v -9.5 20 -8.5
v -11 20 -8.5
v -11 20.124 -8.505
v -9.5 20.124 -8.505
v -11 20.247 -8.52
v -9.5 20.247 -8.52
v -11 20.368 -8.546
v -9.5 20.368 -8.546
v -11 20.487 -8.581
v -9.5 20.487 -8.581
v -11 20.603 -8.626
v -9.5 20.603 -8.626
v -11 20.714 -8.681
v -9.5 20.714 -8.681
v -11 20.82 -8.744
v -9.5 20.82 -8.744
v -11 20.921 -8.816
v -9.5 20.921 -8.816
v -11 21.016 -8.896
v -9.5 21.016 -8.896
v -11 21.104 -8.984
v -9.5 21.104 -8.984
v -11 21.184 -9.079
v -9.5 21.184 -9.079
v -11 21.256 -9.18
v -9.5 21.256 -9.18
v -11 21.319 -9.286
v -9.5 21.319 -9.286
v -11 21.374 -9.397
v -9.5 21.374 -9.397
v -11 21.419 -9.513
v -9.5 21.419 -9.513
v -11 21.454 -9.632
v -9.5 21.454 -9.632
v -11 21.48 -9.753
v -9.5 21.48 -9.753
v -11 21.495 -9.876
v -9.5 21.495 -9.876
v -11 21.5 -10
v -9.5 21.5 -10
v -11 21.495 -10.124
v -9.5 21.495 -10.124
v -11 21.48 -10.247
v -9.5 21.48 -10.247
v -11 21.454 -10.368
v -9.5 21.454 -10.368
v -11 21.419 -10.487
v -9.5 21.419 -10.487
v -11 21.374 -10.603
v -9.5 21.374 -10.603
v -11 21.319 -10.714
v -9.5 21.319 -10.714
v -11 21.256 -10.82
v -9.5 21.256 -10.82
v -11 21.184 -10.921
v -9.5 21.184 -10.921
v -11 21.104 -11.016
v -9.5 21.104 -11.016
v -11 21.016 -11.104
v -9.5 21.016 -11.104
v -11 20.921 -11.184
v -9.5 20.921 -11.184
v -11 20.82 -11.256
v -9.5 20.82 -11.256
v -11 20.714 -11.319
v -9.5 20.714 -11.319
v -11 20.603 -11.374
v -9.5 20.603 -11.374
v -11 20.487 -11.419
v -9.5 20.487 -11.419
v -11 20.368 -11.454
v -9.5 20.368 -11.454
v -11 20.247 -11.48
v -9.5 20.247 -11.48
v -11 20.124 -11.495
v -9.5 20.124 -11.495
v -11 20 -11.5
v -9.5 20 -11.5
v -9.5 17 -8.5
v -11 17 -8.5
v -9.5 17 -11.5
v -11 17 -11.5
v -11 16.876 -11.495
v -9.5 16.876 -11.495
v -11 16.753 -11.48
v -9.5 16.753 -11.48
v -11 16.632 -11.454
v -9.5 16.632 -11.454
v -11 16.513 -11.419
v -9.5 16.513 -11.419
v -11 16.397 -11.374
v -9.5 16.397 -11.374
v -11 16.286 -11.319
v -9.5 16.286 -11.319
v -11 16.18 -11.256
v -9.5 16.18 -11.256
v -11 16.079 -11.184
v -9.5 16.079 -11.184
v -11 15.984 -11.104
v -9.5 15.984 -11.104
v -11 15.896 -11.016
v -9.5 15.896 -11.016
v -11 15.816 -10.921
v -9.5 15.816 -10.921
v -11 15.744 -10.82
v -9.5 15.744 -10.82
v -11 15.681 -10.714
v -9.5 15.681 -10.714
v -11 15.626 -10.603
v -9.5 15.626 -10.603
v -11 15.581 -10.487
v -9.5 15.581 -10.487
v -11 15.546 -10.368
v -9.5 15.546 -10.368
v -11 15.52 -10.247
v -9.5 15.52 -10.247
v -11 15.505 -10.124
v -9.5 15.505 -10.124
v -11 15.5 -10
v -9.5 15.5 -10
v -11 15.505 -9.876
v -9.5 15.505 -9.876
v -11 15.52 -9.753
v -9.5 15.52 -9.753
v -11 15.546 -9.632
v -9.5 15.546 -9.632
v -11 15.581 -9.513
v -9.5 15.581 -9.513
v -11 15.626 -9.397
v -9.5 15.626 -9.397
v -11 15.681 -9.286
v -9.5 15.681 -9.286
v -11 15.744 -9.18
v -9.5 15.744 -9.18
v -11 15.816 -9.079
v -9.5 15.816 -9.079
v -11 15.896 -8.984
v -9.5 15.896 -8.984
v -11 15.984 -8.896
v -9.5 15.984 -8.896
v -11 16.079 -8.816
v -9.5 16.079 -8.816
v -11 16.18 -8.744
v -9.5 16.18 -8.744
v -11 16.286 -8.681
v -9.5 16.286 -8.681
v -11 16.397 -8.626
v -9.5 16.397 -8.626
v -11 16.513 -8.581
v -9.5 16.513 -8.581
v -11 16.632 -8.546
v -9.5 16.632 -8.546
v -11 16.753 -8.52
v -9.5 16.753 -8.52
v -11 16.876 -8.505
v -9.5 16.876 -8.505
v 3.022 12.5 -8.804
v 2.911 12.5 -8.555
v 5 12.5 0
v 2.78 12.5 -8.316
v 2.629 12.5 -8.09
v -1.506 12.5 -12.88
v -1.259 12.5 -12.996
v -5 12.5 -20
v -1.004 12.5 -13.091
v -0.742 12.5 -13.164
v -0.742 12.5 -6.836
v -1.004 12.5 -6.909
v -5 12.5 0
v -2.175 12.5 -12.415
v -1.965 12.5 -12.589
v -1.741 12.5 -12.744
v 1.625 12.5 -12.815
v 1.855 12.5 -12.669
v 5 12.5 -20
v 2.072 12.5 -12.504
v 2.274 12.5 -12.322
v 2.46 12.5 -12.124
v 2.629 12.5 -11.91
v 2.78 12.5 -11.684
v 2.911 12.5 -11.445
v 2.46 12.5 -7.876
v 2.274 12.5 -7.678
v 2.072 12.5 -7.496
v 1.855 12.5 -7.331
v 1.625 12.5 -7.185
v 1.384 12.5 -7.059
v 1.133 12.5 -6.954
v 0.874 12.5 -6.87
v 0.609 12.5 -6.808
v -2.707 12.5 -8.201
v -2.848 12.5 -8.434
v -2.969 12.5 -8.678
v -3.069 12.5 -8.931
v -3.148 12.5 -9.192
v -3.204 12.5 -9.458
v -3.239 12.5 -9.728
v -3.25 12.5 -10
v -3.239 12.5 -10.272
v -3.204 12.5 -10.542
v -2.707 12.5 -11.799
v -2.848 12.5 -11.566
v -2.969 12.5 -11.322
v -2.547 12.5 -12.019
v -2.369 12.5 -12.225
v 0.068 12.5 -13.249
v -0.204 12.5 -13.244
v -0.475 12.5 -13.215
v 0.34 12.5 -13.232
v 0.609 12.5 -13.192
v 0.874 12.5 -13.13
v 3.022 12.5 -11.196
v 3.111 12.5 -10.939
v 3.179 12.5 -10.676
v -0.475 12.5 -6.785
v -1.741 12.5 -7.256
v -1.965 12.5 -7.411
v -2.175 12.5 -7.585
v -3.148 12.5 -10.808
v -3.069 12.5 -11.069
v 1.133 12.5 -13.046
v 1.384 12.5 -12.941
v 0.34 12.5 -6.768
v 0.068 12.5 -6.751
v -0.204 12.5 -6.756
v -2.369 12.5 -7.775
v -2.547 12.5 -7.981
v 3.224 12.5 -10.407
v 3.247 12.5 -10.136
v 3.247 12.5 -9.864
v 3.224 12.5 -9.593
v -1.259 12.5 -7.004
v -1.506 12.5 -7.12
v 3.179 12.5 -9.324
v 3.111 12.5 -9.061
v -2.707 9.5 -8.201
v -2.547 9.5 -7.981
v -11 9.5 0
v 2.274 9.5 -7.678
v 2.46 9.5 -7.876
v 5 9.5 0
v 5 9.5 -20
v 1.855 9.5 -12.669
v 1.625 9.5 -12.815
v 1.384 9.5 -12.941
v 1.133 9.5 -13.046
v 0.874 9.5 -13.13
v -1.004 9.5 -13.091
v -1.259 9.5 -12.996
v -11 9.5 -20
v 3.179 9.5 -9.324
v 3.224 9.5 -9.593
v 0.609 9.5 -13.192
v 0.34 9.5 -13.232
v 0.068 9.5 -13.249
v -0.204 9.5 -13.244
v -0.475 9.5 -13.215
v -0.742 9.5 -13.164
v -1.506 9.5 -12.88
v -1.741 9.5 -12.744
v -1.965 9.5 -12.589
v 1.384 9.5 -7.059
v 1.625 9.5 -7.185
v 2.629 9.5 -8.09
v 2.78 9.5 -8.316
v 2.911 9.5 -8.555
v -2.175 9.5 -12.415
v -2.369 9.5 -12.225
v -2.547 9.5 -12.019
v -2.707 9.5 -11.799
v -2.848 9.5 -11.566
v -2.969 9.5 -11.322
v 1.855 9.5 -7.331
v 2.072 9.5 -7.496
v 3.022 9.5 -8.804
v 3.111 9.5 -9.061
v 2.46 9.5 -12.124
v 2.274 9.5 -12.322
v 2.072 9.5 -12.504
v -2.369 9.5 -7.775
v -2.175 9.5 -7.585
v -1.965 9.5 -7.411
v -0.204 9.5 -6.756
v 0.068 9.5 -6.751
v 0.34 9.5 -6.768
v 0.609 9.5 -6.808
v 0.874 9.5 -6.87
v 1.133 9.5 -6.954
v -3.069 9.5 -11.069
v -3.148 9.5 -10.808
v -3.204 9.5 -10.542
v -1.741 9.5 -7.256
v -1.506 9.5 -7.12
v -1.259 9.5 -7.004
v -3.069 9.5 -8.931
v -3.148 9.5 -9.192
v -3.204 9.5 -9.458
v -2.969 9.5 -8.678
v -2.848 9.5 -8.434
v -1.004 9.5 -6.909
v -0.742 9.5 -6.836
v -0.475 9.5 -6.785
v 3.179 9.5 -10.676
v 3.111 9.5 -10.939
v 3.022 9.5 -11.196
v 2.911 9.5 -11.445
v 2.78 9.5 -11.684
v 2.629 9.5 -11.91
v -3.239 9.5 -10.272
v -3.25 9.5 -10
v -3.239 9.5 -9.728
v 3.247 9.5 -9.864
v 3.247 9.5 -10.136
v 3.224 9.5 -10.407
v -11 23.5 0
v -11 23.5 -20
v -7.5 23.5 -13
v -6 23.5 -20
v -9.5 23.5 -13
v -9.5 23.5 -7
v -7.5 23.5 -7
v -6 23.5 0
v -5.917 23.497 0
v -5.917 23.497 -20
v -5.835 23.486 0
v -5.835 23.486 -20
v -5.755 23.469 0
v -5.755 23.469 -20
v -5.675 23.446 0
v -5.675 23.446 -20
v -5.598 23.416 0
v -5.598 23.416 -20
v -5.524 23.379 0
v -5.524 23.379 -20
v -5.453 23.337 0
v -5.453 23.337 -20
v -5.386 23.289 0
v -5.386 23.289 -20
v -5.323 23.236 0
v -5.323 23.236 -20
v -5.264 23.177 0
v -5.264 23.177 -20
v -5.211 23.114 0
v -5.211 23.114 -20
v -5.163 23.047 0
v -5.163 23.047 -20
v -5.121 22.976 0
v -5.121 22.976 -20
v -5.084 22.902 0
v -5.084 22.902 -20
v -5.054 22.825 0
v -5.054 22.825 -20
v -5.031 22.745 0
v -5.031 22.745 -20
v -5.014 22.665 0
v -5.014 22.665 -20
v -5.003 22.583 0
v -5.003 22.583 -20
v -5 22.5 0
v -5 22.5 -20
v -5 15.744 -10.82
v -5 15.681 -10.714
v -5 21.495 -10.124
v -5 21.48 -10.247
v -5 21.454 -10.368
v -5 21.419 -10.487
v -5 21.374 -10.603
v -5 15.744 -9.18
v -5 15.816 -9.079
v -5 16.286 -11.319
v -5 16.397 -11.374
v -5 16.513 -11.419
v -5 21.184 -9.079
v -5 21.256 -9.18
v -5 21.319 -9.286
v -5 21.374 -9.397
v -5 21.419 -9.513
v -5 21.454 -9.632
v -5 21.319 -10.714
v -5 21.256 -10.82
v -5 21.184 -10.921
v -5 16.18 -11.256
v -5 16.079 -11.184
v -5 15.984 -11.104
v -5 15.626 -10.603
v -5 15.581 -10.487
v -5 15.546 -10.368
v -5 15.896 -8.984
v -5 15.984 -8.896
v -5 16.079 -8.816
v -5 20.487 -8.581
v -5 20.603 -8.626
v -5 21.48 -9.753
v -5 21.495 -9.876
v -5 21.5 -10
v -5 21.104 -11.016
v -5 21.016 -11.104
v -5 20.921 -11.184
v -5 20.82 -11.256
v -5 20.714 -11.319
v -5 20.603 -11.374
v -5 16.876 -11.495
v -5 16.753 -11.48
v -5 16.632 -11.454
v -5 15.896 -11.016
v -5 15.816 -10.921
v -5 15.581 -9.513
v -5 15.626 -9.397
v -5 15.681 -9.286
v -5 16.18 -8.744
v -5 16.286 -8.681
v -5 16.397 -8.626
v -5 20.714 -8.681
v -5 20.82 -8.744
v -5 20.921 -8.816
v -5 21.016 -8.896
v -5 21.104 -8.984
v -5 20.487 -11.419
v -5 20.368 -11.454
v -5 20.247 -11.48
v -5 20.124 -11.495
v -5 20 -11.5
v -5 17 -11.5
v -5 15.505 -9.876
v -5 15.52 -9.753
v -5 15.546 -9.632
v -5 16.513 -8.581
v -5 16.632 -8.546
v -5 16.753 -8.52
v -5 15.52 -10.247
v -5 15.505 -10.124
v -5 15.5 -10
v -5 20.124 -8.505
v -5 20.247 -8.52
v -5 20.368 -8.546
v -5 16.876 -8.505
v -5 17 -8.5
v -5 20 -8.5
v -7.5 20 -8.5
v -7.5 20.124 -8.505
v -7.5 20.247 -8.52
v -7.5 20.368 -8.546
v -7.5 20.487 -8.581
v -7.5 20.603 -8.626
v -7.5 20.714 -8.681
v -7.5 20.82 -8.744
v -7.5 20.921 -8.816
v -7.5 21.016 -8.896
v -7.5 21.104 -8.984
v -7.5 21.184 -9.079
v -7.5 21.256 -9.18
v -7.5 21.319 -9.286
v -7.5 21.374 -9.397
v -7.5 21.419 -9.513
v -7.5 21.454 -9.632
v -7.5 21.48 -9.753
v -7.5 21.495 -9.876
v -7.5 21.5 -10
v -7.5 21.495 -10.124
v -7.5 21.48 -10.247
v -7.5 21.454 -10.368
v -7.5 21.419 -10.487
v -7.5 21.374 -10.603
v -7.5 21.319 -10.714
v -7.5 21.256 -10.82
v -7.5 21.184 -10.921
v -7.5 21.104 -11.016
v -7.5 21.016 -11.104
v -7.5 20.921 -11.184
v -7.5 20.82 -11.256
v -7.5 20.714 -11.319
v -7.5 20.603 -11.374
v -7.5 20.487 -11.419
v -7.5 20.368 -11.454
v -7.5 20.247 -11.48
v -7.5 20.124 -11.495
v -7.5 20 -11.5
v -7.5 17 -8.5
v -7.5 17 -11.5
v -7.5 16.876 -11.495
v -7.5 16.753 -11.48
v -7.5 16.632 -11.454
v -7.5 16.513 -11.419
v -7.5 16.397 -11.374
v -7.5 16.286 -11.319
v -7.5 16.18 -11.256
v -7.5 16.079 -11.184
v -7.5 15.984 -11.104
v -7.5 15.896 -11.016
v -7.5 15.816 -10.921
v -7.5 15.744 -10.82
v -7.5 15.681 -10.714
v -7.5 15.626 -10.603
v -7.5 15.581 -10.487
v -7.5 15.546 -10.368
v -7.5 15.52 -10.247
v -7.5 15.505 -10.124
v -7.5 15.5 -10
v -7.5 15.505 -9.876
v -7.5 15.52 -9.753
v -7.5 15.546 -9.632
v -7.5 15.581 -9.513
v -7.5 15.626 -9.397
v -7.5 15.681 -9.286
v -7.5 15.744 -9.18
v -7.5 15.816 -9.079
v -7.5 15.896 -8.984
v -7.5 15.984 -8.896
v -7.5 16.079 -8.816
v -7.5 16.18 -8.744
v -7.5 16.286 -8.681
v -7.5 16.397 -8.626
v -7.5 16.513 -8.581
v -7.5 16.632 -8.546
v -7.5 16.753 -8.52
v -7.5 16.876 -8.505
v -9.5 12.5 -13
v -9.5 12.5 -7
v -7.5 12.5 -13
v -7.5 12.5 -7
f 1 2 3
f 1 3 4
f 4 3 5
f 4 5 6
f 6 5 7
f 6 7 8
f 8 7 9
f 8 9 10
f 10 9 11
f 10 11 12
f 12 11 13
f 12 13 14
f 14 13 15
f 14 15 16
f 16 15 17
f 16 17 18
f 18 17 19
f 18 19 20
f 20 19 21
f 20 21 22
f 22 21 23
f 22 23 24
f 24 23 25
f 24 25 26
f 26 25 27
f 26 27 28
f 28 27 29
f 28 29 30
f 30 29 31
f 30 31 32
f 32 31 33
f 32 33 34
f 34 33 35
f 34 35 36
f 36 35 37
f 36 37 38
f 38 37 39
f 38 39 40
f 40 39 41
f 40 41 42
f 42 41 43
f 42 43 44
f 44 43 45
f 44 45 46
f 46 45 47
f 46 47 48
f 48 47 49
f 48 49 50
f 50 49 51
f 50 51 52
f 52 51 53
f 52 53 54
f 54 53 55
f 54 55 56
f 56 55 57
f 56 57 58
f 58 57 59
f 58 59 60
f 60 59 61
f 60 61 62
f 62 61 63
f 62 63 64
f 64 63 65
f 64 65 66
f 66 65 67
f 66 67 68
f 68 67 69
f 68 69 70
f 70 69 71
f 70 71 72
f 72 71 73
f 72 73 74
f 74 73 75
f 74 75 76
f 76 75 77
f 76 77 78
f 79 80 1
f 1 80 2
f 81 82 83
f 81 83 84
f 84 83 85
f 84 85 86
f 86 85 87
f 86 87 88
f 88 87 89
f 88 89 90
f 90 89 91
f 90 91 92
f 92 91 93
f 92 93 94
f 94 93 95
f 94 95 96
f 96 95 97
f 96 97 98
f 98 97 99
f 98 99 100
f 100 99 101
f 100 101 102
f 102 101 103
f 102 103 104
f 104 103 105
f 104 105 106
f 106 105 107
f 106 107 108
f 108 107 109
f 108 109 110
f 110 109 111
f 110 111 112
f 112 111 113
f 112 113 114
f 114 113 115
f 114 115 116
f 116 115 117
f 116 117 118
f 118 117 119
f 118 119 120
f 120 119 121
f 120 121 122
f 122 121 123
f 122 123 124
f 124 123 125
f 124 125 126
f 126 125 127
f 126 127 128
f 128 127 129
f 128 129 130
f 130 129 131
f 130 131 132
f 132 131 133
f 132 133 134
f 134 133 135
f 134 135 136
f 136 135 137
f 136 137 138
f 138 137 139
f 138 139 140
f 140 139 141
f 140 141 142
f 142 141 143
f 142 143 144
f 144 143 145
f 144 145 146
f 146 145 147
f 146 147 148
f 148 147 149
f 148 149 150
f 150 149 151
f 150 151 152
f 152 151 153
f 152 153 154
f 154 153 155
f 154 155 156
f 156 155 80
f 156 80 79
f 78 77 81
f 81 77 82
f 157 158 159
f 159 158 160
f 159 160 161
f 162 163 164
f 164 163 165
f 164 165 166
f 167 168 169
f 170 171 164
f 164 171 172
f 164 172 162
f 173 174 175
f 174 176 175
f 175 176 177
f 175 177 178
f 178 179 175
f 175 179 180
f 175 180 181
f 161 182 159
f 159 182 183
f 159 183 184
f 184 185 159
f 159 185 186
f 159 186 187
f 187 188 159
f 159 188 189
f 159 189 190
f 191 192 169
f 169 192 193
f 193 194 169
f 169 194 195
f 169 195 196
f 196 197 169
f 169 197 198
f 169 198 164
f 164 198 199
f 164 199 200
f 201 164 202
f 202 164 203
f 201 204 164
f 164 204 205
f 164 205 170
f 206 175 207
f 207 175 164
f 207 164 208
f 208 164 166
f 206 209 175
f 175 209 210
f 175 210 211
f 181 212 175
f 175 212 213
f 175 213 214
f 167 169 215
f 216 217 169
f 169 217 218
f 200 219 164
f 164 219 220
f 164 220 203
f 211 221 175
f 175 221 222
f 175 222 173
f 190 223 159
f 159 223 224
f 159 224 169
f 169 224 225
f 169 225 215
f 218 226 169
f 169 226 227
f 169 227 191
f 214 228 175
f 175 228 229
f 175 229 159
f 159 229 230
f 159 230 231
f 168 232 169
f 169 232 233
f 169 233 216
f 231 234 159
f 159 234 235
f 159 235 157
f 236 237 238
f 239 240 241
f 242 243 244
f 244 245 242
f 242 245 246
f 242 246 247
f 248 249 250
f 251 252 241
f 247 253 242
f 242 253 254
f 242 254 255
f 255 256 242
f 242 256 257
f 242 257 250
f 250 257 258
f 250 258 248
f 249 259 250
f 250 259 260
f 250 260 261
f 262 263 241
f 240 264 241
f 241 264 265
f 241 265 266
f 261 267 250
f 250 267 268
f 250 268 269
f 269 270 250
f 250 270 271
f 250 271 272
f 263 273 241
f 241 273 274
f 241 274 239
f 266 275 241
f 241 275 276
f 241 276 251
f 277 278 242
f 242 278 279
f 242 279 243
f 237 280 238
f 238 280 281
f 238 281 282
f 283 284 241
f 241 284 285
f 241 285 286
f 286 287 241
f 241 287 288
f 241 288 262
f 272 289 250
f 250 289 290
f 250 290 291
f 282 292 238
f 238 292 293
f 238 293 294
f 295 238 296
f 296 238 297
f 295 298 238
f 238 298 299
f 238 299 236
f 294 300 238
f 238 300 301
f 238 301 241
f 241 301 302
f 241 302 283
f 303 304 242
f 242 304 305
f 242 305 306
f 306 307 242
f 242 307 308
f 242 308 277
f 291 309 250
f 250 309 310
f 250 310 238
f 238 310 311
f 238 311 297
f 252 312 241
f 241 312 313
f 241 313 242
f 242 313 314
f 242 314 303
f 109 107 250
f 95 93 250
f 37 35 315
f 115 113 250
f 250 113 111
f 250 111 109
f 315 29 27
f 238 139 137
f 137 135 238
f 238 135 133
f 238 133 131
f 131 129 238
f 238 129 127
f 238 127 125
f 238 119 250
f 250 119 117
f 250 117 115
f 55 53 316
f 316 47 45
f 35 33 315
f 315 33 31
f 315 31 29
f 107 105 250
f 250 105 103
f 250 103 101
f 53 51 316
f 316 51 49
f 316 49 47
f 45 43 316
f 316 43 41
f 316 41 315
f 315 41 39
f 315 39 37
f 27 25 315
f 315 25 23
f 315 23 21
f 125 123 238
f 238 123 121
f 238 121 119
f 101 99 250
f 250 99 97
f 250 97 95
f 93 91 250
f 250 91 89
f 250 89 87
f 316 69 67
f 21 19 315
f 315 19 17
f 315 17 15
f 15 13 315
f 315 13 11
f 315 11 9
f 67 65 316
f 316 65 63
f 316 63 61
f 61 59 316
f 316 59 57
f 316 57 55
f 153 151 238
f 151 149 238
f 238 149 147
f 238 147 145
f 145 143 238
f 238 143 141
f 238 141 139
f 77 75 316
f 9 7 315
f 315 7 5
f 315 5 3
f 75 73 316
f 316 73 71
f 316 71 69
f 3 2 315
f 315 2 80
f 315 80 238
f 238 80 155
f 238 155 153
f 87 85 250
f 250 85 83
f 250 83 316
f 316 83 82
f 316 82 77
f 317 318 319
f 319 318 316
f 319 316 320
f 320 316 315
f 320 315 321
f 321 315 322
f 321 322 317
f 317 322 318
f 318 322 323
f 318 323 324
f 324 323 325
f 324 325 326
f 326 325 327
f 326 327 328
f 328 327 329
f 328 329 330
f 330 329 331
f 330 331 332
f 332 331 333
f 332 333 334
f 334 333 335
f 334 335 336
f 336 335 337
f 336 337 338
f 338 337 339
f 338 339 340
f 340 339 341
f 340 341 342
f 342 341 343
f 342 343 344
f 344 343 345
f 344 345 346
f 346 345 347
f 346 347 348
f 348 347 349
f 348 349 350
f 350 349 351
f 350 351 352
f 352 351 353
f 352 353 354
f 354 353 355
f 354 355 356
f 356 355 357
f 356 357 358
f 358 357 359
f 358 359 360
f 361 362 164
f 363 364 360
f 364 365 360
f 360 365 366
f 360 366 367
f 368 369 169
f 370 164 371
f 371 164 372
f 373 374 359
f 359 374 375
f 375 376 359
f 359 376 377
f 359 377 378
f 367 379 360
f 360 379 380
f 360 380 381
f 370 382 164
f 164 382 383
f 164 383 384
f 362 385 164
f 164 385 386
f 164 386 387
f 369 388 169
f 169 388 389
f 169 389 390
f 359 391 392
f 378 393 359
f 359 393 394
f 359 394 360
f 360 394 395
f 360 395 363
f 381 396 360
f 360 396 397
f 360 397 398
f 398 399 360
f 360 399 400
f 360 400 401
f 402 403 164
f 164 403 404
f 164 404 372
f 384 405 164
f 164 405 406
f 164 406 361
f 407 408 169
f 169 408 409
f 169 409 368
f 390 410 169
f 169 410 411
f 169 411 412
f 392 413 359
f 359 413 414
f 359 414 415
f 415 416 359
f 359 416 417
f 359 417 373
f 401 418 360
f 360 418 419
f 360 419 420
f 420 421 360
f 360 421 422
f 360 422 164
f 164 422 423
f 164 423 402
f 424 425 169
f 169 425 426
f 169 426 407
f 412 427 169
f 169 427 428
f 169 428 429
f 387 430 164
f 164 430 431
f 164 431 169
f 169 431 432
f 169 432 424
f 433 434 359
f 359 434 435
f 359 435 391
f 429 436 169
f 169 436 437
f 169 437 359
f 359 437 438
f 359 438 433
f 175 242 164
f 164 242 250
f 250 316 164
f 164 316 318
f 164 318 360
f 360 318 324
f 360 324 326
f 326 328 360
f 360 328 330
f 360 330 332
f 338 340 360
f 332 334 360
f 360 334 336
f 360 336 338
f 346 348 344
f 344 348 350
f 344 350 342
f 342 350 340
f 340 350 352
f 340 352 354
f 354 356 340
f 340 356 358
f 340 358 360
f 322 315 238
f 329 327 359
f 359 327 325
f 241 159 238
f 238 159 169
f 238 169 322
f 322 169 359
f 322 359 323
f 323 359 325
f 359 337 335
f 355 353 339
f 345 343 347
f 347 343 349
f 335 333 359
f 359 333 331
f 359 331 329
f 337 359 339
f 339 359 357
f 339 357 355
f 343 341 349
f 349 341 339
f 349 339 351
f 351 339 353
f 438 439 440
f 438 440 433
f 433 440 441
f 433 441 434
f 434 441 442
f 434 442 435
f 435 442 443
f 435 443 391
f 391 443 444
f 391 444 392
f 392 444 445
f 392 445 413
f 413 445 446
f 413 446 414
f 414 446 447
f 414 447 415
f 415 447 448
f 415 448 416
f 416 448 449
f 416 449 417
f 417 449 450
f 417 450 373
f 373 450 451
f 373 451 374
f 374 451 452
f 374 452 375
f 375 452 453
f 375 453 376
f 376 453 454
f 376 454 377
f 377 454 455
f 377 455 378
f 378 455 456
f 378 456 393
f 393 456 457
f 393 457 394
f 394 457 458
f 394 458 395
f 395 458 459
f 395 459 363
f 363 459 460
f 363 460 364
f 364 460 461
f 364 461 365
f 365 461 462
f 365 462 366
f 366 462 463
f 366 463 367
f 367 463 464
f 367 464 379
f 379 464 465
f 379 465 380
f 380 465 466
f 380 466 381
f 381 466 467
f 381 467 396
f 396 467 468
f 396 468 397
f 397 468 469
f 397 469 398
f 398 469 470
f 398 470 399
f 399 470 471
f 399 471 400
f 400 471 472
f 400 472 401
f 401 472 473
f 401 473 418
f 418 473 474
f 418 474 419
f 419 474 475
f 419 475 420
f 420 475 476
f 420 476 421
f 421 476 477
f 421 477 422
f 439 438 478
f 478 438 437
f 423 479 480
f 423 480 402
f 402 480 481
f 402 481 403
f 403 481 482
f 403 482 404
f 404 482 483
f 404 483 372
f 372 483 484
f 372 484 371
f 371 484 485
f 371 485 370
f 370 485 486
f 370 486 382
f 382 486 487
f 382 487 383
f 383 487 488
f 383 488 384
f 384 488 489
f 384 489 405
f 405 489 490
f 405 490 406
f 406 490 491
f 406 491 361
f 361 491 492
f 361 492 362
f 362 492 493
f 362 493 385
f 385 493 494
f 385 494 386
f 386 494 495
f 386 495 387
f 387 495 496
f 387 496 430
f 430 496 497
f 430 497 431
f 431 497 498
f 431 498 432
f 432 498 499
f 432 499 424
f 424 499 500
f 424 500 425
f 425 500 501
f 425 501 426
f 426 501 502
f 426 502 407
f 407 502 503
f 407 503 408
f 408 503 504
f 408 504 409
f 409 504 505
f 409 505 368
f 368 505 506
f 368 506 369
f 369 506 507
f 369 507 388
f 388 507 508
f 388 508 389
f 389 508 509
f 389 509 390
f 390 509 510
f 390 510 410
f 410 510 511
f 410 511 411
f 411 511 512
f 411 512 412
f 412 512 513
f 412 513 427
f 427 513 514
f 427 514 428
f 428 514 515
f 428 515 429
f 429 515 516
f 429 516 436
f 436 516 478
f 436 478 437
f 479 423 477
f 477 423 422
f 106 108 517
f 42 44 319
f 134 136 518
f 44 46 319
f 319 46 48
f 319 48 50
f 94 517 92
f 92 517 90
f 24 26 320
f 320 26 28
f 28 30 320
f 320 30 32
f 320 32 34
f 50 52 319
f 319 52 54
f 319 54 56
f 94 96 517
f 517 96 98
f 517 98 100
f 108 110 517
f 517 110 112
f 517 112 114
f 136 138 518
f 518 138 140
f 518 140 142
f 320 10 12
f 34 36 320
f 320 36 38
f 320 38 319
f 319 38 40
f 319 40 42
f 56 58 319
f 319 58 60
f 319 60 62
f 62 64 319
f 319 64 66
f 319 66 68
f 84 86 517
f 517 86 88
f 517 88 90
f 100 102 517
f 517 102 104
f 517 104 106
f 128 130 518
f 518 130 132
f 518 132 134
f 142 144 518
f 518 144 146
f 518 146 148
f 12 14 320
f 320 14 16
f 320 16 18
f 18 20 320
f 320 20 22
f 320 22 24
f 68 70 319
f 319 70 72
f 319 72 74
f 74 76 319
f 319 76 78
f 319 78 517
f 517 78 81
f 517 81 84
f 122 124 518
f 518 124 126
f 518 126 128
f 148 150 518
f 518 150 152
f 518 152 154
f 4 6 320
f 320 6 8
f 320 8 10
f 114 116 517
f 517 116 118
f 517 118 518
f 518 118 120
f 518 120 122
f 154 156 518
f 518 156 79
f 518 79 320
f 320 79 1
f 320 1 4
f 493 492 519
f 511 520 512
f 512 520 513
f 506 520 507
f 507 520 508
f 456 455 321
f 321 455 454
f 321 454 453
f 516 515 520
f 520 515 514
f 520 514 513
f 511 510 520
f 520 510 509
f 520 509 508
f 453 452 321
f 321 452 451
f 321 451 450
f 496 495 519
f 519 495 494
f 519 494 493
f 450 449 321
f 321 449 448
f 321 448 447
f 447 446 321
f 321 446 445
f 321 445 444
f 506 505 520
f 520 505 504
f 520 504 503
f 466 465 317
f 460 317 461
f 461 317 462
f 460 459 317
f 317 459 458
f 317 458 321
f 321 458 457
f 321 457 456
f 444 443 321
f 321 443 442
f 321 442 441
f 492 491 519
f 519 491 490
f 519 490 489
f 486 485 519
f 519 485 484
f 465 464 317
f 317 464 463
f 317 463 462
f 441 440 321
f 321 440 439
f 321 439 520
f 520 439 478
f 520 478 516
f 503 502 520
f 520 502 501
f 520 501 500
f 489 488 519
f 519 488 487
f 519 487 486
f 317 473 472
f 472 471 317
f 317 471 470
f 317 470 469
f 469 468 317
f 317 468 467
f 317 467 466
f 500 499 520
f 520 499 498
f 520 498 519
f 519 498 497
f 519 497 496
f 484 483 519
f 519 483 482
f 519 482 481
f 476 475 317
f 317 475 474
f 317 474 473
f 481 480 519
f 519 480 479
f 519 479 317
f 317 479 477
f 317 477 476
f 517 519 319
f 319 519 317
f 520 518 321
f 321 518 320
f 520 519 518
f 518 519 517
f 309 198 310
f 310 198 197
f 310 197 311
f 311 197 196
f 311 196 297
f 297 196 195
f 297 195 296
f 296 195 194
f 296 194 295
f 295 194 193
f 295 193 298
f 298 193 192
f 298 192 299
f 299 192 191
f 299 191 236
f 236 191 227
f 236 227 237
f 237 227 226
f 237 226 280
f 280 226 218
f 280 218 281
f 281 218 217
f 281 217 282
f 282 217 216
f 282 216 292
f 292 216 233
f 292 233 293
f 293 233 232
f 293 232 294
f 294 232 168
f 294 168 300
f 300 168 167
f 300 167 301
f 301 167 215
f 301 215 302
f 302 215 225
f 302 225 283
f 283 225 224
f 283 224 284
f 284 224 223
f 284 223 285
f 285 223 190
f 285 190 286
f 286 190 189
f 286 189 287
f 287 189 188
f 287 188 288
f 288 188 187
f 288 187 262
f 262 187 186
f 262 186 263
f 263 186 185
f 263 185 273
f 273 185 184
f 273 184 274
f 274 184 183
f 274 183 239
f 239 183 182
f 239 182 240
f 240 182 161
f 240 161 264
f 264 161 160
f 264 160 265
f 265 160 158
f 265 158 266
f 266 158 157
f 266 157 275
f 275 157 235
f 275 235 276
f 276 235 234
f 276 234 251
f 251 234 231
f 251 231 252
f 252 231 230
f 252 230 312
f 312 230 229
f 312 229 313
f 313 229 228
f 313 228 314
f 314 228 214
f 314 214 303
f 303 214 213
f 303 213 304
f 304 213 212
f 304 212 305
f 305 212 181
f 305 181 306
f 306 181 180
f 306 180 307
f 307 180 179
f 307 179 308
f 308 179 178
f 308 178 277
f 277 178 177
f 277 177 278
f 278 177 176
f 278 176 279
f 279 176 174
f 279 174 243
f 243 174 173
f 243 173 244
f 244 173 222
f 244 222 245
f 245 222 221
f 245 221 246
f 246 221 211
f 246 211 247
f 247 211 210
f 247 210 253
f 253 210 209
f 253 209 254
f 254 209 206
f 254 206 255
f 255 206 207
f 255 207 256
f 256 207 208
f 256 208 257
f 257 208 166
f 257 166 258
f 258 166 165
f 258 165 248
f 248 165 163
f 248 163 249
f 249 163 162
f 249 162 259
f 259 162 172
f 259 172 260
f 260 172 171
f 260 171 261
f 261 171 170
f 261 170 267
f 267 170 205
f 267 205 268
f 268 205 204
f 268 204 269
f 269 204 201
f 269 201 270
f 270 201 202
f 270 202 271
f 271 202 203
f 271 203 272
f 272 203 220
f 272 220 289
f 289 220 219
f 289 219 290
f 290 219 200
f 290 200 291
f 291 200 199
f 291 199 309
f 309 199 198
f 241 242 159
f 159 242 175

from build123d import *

# Parameters (mm, degrees)
ESTRUSIONE_ESTRUSIONE1_DEPTH         = 20
TAGLIO_ESTRUSIONE1_REACH             = 37.979
ESTRUSIONE_ESTRUSIONE4_DEPTH         = 0.6
SCHIZZO12_W                          = 2
SCHIZZO12_H                          = 6
TAGLIO_ESTRUSIONE2_DEPTH             = 11
SCHIZZO13_R                          = 3.25
TAGLIO_ESTRUSIONE3_DEPTH             = 27.487921942
TAGLIO_ESTRUSIONE4_REACH             = 34.76
SCHIZZO14_W                          = 18.5
SCHIZZO14_H                          = 9.5
TAGLIO_ESTRUSIONE4_DIRECTION_2_REACH = 34.76
SCHIZZO15_W                          = 1
SCHIZZO15_H                          = 20
ESTRUSIONE_ESTRUSIONE5_DEPTH         = 3


with BuildPart() as part:
    # Schizzo2 → Estrusione-Estrusione1 (new body)
    with BuildSketch(Plane.XY):
        with BuildLine():
            Line((-4, 9.5), (-11, 9.5))
            Line((-11, 9.5), (-11, 23.5))
            Line((-11, 23.5), (-6, 23.5))
            ThreePointArc((-6, 23.5), (-5.292893219, 23.207106781), (-5, 22.5))
            Line((-5, 22.5), (-5, 12.5))
            Line((-5, 12.5), (4, 12.5))
            Line((4, 12.5), (4, 9.5))
            Line((4, 9.5), (4, 6.5))
            Line((4, 6.5), (7.5, 6.5))
            Line((7.5, 6.5), (7.5, 4))
            Line((7.5, 4), (4, 0))
            Line((4, 0), (-4, 0))
            Line((-4, 0), (-7.5, 4))
            Line((-7.5, 4), (-7.5, 6.5))
            Line((-7.5, 6.5), (-4, 6.5))
            Line((-4, 6.5), (-4, 9.5))
        make_face()
    extrude(amount=-ESTRUSIONE_ESTRUSIONE1_DEPTH)

    # Schizzo6 → Taglio-Estrusione1 (cut, up to next)
    with BuildSketch(Plane.ZY.offset(11), mode=Mode.PRIVATE) as taglio_estrusione1_sk1:
        with BuildLine():
            Line((-8.5, 20), (-8.5, 17))
            ThreePointArc((-8.5, 17), (-10, 15.5), (-11.5, 17))
            Line((-11.5, 17), (-11.5, 20))
            ThreePointArc((-11.5, 20), (-10, 21.5), (-8.5, 20))
        make_face()
    taglio_estrusione1_tool1 = extrude(taglio_estrusione1_sk1.sketch, amount=-TAGLIO_ESTRUSIONE1_REACH, mode=Mode.PRIVATE) & part.part
    add(taglio_estrusione1_tool1.solids().sort_by_distance((-11, 18.5, -10))[0], mode=Mode.SUBTRACT)

    # Schizzo11 → Estrusione-Estrusione4 (add)
    with BuildSketch(Plane(origin=(0, 0, -20), x_dir=(-1, 0, 0), z_dir=(0, 0, -1))):
        with BuildLine():
            Line((-1.916666667, 6), (-2.5, 6))
            add(Edge.make_bspline(
                [(-2.5, 6), (-2.484196549, 6.065431756), (-2.453302094, 6.193345487), (-2.388863743, 6.376101829), (-2.318665127, 6.549045511), (-2.234371075, 6.708938219), (-2.142426246, 6.858993324), (-2.037084049, 6.995807413), (-1.923204564, 7.122860063), (-1.797243944, 7.235613218), (-1.665147858, 7.337714716), (-1.525054993, 7.424768393), (-1.379783905, 7.499656106), (-1.228328086, 7.561350822), (-1.070236625, 7.607826795), (-0.906938753, 7.641546577), (-0.738006538, 7.66344436), (-0.623332441, 7.665581492), (-0.565104167, 7.666666667)],
                knots=[0, 0, 0, 0, 1.162005537, 2.271625781, 3.343758855, 4.383309926, 5.390229558, 6.379919256, 7.361854164, 8.333198761, 9.295911338, 10.242430842, 11.177959212, 12.116337295, 13.062827104, 14.020064771, 14.994644689, 16, 16, 16, 16], degree=3))
            add(Edge.make_bspline(
                [(-0.565104167, 7.666666667), (-0.480264789, 7.664105239), (-0.312436625, 7.659038256), (-0.065876681, 7.612768588), (0.171887412, 7.539550485), (0.398253158, 7.438384992), (0.608515961, 7.313608553), (0.795597451, 7.165102613), (0.956961828, 6.995732482), (1.092337101, 6.80865772), (1.198333527, 6.608726059), (1.276493935, 6.402954339), (1.324077057, 6.191830678), (1.330243806, 6.049281445), (1.333333333, 5.977864583)],
                knots=[0, 0, 0, 0, 1.083050992, 2.142477498, 3.193116406, 4.255571735, 5.30263384, 6.308962982, 7.297363603, 8.282367274, 9.249857812, 10.179914175, 11.08814088, 12, 12, 12, 12], degree=3))
            add(Edge.make_bspline(
                [(1.333333333, 5.977864583), (1.331172379, 5.909137679), (1.326943725, 5.774649792), (1.291038272, 5.578309869), (1.230613784, 5.393261183), (1.146912796, 5.218724739), (1.038564203, 5.055807179), (0.907314909, 4.904141953), (0.752238537, 4.763056374), (0.634720509, 4.682234495), (0.57421875, 4.640625)],
                knots=[0, 0, 0, 0, 1.024540389, 2.004866551, 2.965041327, 3.920577974, 4.882998113, 5.874504559, 6.905732034, 8, 8, 8, 8], degree=3))
            add(Edge.make_bspline(
                [(0.57421875, 4.640625), (0.643363437, 4.607236967), (0.780359061, 4.541085617), (0.967095758, 4.411353496), (1.136611813, 4.261563137), (1.231147291, 4.144669639), (1.278645833, 4.0859375)],
                knots=[0, 0, 0, 0, 1.015518401, 2.012035669, 3.001164323, 4, 4, 4, 4], degree=3))
            add(Edge.make_bspline(
                [(1.278645833, 4.0859375), (1.309922612, 4.043115961), (1.37196399, 3.958174116), (1.448544267, 3.821606468), (1.518018337, 3.683525131), (1.572154458, 3.540229091), (1.614077354, 3.393379209), (1.644044271, 3.24272333), (1.662660533, 3.088138431), (1.665326558, 2.983558111), (1.666666667, 2.930989583)],
                knots=[0, 0, 0, 0, 1.025084078, 2.033381695, 3.024893161, 4.013698104, 4.991890475, 5.976764909, 6.982997093, 8, 8, 8, 8], degree=3))
            add(Edge.make_bspline(
                [(1.666666667, 2.930989583), (1.663333999, 2.83997153), (1.656684346, 2.658363755), (1.597248208, 2.390053558), (1.505109333, 2.127777625), (1.374260737, 1.876924352), (1.214792507, 1.64221793), (1.025071762, 1.43221907), (0.807254146, 1.251707377), (0.56432937, 1.100888382), (0.301140417, 0.980326526), (0.019642889, 0.896648418), (-0.276107211, 0.842148704), (-0.478920764, 0.836304519), (-0.58203125, 0.833333333)],
                knots=[0, 0, 0, 0, 0.955779014, 1.907060117, 2.875433937, 3.871313158, 4.872415639, 5.851225146, 6.836215519, 7.83643374, 8.849228613, 9.86973379, 10.916971861, 12, 12, 12, 12], degree=3))
            add(Edge.make_bspline(
                [(-0.58203125, 0.833333333), (-0.651524236, 0.834945729), (-0.78826326, 0.838118387), (-0.9892869, 0.859807218), (-1.181170056, 0.899420085), (-1.364172166, 0.952726223), (-1.538455805, 1.020310887), (-1.703489143, 1.104474184), (-1.860287517, 1.203481259), (-2.007371283, 1.318500779), (-2.144722909, 1.447166124), (-2.268692254, 1.591761428), (-2.381346155, 1.74961375), (-2.479668199, 1.922556569), (-2.568136825, 2.108354904), (-2.640901459, 2.309387829), (-2.704946086, 2.523858156), (-2.73472252, 2.673316816), (-2.75, 2.75)],
                knots=[0, 0, 0, 0, 1.048658725, 2.063410685, 3.046034179, 4.001477787, 4.936774919, 5.862367409, 6.792675028, 7.730719943, 8.675894397, 9.627829632, 10.600096036, 11.597688215, 12.626045268, 13.701542398, 14.82072376, 16, 16, 16, 16], degree=3))
            Line((-2.75, 2.75), (-2.166666667, 2.75))
            add(Edge.make_bspline(
                [(-2.166666667, 2.75), (-2.151469125, 2.699951833), (-2.121908588, 2.602603799), (-2.071590606, 2.462500375), (-2.014263815, 2.33406399), (-1.952765349, 2.216352478), (-1.888176806, 2.108206588), (-1.815906231, 2.012485974), (-1.74130639, 1.924986312), (-1.685073305, 1.875689176), (-1.657552083, 1.8515625)],
                knots=[0, 0, 0, 0, 1.198163088, 2.33053128, 3.407730985, 4.417276592, 5.372219308, 6.28897303, 7.162600585, 8, 8, 8, 8], degree=3))
            add(Edge.make_bspline(
                [(-1.657552083, 1.8515625), (-1.621158441, 1.823504166), (-1.548483496, 1.767474107), (-1.430056781, 1.695971082), (-1.305507707, 1.634014892), (-1.172137598, 1.586688029), (-1.032824452, 1.54661523), (-0.885316488, 1.520391409), (-0.730915085, 1.502399091), (-0.625489239, 1.500811361), (-0.571614583, 1.5)],
                knots=[0, 0, 0, 0, 0.946170439, 1.889420265, 2.845303464, 3.807233317, 4.801018734, 5.828864929, 6.890507805, 8, 8, 8, 8], degree=3))
            add(Edge.make_bspline(
                [(-0.571614583, 1.5), (-0.51078665, 1.501143824), (-0.391842877, 1.503380473), (-0.218283853, 1.523949643), (-0.053170021, 1.553906125), (0.101665412, 1.600173093), (0.24825064, 1.657337532), (0.384530847, 1.729113142), (0.512295044, 1.813324768), (0.629906797, 1.909040348), (0.735662739, 2.013823125), (0.828778978, 2.123418828), (0.907939064, 2.237365369), (0.97179428, 2.356293307), (1.022216731, 2.479710161), (1.056542675, 2.607962273), (1.080409774, 2.740000053), (1.082353483, 2.829753852), (1.083333333, 2.875)],
                knots=[0, 0, 0, 0, 1.217147791, 2.380027433, 3.494444702, 4.572153297, 5.609568379, 6.639424714, 7.649109417, 8.668170816, 9.669597737, 10.625200337, 11.543417969, 12.441394052, 13.322311151, 14.205496177, 15.095365482, 16, 16, 16, 16], degree=3))
            add(Edge.make_bspline(
                [(1.083333333, 2.875), (1.080491345, 2.935563915), (1.074821509, 3.056390388), (1.031534147, 3.234151597), (0.960333399, 3.405423649), (0.860655878, 3.567284402), (0.739318097, 3.71729679), (0.597497555, 3.851143829), (0.43401656, 3.961588284), (0.283551089, 4.037895789), (0.150272941, 4.089964642), (0.036215798, 4.124646719), (-0.091475036, 4.154014937), (-0.231255399, 4.181337727), (-0.384178515, 4.204591659), (-0.5500779, 4.223983603), (-0.728987171, 4.239500107), (-0.852842194, 4.246429284), (-0.916666667, 4.25)],
                knots=[0, 0, 0, 0, 1.07054697, 2.135767047, 3.216561865, 4.33974944, 5.486079747, 6.621378074, 7.775625952, 8.963672916, 9.598146892, 10.304877434, 11.070270905, 11.915000392, 12.823868403, 13.805723172, 14.86925407, 16, 16, 16, 16], degree=3))
            Line((-0.916666667, 4.25), (-0.916666667, 4.916666667))
            add(Edge.make_bspline(
                [(-0.916666667, 4.916666667), (-0.836250216, 4.918031302), (-0.678734144, 4.920704288), (-0.448644721, 4.95303345), (-0.228622855, 4.997754616), (-0.02354462, 5.066255688), (0.163374419, 5.145816239), (0.325539394, 5.238398914), (0.460678382, 5.34131202), (0.568134658, 5.456144008), (0.648974654, 5.579300525), (0.708081563, 5.707660032), (0.742996455, 5.842347574), (0.747657265, 5.934266243), (0.75, 5.98046875)],
                knots=[0, 0, 0, 0, 1.321986639, 2.589447074, 3.816329219, 5.01088745, 6.139805852, 7.153945165, 8.075214402, 8.924034688, 9.728124013, 10.488707548, 11.240355623, 12, 12, 12, 12], degree=3))
            add(Edge.make_bspline(
                [(0.75, 5.98046875), (0.74923038, 6.014413134), (0.747699256, 6.081943876), (0.728390026, 6.180604717), (0.69937395, 6.276249331), (0.659483024, 6.368470979), (0.606089798, 6.456630059), (0.542192966, 6.541478178), (0.466109351, 6.622530911), (0.37892495, 6.698080076), (0.285303026, 6.770080088), (0.182696301, 6.831205413), (0.074198534, 6.883474814), (-0.040310397, 6.926578176), (-0.161202096, 6.959002568), (-0.28790856, 6.982283416), (-0.420671401, 6.996839061), (-0.511247475, 6.99893469), (-0.557291667, 7)],
                knots=[0, 0, 0, 0, 0.884392785, 1.759457502, 2.611959086, 3.489218968, 4.37281399, 5.2945488, 6.255912374, 7.266815255, 8.301784654, 9.332968512, 10.37626691, 11.440494194, 12.520033166, 13.637162961, 14.798855837, 16, 16, 16, 16], degree=3))
            add(Edge.make_bspline(
                [(-0.557291667, 7), (-0.631301907, 6.997416042), (-0.775861121, 6.992368971), (-0.984260252, 6.948163375), (-1.177996158, 6.877632648), (-1.326082253, 6.793442755), (-1.435435605, 6.710334806), (-1.51357849, 6.637753232), (-1.590316581, 6.557092273), (-1.660601409, 6.463383862), (-1.731681652, 6.362974109), (-1.79639298, 6.2507587), (-1.859275266, 6.129664825), (-1.897165715, 6.044058647), (-1.916666667, 6)],
                knots=[0, 0, 0, 0, 1.472543308, 2.876219568, 4.221790263, 5.565193594, 6.249813518, 6.953379497, 7.687249741, 8.463570142, 9.283606569, 10.136032583, 11.040678096, 12, 12, 12, 12], degree=3))
        make_face()
    extrude(amount=ESTRUSIONE_ESTRUSIONE4_DEPTH)

    # Schizzo12 → Taglio-Estrusione2 (cut)
    with BuildSketch(Plane(origin=(0, 23.5, 0), x_dir=(1, 0, 0), z_dir=(0, 1, 0))):
        with Locations((-8.5, 10)):
            Rectangle(SCHIZZO12_W, SCHIZZO12_H)
    extrude(amount=-TAGLIO_ESTRUSIONE2_DEPTH, mode=Mode.SUBTRACT)

    # Schizzo13 → Taglio-Estrusione3 (cut, through all)
    with BuildSketch(Plane(origin=(0, 12.5, 0), x_dir=(1, 0, 0), z_dir=(0, 1, 0))):
        with Locations(Location((0, 10, 0), (0, 0, 180))):
            Circle(SCHIZZO13_R)
    extrude(amount=-TAGLIO_ESTRUSIONE3_DEPTH, mode=Mode.SUBTRACT)

    # Schizzo14 → Taglio-Estrusione4 (cut, up to next)
    with BuildSketch(Plane(origin=(0, 0, -20), x_dir=(-1, 0, 0), z_dir=(0, 0, -1)), mode=Mode.PRIVATE) as taglio_estrusione4_sk1:
        with Locations((1.75, 4.75)):
            Rectangle(SCHIZZO14_W, SCHIZZO14_H)
    taglio_estrusione4_tool1 = extrude(taglio_estrusione4_sk1.sketch, amount=-TAGLIO_ESTRUSIONE4_REACH, mode=Mode.PRIVATE) & part.part
    add(taglio_estrusione4_tool1.solids().sort_by_distance((-1.75, 4.75, -20))[0], mode=Mode.SUBTRACT)

    # Schizzo14 → Taglio-Estrusione4 direction 2 (cut, up to next)
    with BuildSketch(Plane(origin=(0, 0, -20), x_dir=(-1, 0, 0), z_dir=(0, 0, -1)), mode=Mode.PRIVATE) as taglio_estrusione4_direction_2_sk1:
        with Locations((1.75, 4.75)):
            Rectangle(SCHIZZO14_W, SCHIZZO14_H)
    taglio_estrusione4_direction_2_tool1 = extrude(taglio_estrusione4_direction_2_sk1.sketch, amount=TAGLIO_ESTRUSIONE4_DIRECTION_2_REACH, mode=Mode.PRIVATE) & part.part
    add(taglio_estrusione4_direction_2_tool1.solids().sort_by_distance((-1.75, 4.75, -20))[0], mode=Mode.SUBTRACT)

    # Schizzo15 → Estrusione-Estrusione5 (add, through all)
    with BuildSketch(Plane(origin=(0, 12.5, 0), x_dir=(1, 0, 0), z_dir=(0, 1, 0))):
        with Locations((4.5, 10)):
            Rectangle(SCHIZZO15_W, SCHIZZO15_H)
    extrude(amount=-ESTRUSIONE_ESTRUSIONE5_DEPTH)


solid = part.part
